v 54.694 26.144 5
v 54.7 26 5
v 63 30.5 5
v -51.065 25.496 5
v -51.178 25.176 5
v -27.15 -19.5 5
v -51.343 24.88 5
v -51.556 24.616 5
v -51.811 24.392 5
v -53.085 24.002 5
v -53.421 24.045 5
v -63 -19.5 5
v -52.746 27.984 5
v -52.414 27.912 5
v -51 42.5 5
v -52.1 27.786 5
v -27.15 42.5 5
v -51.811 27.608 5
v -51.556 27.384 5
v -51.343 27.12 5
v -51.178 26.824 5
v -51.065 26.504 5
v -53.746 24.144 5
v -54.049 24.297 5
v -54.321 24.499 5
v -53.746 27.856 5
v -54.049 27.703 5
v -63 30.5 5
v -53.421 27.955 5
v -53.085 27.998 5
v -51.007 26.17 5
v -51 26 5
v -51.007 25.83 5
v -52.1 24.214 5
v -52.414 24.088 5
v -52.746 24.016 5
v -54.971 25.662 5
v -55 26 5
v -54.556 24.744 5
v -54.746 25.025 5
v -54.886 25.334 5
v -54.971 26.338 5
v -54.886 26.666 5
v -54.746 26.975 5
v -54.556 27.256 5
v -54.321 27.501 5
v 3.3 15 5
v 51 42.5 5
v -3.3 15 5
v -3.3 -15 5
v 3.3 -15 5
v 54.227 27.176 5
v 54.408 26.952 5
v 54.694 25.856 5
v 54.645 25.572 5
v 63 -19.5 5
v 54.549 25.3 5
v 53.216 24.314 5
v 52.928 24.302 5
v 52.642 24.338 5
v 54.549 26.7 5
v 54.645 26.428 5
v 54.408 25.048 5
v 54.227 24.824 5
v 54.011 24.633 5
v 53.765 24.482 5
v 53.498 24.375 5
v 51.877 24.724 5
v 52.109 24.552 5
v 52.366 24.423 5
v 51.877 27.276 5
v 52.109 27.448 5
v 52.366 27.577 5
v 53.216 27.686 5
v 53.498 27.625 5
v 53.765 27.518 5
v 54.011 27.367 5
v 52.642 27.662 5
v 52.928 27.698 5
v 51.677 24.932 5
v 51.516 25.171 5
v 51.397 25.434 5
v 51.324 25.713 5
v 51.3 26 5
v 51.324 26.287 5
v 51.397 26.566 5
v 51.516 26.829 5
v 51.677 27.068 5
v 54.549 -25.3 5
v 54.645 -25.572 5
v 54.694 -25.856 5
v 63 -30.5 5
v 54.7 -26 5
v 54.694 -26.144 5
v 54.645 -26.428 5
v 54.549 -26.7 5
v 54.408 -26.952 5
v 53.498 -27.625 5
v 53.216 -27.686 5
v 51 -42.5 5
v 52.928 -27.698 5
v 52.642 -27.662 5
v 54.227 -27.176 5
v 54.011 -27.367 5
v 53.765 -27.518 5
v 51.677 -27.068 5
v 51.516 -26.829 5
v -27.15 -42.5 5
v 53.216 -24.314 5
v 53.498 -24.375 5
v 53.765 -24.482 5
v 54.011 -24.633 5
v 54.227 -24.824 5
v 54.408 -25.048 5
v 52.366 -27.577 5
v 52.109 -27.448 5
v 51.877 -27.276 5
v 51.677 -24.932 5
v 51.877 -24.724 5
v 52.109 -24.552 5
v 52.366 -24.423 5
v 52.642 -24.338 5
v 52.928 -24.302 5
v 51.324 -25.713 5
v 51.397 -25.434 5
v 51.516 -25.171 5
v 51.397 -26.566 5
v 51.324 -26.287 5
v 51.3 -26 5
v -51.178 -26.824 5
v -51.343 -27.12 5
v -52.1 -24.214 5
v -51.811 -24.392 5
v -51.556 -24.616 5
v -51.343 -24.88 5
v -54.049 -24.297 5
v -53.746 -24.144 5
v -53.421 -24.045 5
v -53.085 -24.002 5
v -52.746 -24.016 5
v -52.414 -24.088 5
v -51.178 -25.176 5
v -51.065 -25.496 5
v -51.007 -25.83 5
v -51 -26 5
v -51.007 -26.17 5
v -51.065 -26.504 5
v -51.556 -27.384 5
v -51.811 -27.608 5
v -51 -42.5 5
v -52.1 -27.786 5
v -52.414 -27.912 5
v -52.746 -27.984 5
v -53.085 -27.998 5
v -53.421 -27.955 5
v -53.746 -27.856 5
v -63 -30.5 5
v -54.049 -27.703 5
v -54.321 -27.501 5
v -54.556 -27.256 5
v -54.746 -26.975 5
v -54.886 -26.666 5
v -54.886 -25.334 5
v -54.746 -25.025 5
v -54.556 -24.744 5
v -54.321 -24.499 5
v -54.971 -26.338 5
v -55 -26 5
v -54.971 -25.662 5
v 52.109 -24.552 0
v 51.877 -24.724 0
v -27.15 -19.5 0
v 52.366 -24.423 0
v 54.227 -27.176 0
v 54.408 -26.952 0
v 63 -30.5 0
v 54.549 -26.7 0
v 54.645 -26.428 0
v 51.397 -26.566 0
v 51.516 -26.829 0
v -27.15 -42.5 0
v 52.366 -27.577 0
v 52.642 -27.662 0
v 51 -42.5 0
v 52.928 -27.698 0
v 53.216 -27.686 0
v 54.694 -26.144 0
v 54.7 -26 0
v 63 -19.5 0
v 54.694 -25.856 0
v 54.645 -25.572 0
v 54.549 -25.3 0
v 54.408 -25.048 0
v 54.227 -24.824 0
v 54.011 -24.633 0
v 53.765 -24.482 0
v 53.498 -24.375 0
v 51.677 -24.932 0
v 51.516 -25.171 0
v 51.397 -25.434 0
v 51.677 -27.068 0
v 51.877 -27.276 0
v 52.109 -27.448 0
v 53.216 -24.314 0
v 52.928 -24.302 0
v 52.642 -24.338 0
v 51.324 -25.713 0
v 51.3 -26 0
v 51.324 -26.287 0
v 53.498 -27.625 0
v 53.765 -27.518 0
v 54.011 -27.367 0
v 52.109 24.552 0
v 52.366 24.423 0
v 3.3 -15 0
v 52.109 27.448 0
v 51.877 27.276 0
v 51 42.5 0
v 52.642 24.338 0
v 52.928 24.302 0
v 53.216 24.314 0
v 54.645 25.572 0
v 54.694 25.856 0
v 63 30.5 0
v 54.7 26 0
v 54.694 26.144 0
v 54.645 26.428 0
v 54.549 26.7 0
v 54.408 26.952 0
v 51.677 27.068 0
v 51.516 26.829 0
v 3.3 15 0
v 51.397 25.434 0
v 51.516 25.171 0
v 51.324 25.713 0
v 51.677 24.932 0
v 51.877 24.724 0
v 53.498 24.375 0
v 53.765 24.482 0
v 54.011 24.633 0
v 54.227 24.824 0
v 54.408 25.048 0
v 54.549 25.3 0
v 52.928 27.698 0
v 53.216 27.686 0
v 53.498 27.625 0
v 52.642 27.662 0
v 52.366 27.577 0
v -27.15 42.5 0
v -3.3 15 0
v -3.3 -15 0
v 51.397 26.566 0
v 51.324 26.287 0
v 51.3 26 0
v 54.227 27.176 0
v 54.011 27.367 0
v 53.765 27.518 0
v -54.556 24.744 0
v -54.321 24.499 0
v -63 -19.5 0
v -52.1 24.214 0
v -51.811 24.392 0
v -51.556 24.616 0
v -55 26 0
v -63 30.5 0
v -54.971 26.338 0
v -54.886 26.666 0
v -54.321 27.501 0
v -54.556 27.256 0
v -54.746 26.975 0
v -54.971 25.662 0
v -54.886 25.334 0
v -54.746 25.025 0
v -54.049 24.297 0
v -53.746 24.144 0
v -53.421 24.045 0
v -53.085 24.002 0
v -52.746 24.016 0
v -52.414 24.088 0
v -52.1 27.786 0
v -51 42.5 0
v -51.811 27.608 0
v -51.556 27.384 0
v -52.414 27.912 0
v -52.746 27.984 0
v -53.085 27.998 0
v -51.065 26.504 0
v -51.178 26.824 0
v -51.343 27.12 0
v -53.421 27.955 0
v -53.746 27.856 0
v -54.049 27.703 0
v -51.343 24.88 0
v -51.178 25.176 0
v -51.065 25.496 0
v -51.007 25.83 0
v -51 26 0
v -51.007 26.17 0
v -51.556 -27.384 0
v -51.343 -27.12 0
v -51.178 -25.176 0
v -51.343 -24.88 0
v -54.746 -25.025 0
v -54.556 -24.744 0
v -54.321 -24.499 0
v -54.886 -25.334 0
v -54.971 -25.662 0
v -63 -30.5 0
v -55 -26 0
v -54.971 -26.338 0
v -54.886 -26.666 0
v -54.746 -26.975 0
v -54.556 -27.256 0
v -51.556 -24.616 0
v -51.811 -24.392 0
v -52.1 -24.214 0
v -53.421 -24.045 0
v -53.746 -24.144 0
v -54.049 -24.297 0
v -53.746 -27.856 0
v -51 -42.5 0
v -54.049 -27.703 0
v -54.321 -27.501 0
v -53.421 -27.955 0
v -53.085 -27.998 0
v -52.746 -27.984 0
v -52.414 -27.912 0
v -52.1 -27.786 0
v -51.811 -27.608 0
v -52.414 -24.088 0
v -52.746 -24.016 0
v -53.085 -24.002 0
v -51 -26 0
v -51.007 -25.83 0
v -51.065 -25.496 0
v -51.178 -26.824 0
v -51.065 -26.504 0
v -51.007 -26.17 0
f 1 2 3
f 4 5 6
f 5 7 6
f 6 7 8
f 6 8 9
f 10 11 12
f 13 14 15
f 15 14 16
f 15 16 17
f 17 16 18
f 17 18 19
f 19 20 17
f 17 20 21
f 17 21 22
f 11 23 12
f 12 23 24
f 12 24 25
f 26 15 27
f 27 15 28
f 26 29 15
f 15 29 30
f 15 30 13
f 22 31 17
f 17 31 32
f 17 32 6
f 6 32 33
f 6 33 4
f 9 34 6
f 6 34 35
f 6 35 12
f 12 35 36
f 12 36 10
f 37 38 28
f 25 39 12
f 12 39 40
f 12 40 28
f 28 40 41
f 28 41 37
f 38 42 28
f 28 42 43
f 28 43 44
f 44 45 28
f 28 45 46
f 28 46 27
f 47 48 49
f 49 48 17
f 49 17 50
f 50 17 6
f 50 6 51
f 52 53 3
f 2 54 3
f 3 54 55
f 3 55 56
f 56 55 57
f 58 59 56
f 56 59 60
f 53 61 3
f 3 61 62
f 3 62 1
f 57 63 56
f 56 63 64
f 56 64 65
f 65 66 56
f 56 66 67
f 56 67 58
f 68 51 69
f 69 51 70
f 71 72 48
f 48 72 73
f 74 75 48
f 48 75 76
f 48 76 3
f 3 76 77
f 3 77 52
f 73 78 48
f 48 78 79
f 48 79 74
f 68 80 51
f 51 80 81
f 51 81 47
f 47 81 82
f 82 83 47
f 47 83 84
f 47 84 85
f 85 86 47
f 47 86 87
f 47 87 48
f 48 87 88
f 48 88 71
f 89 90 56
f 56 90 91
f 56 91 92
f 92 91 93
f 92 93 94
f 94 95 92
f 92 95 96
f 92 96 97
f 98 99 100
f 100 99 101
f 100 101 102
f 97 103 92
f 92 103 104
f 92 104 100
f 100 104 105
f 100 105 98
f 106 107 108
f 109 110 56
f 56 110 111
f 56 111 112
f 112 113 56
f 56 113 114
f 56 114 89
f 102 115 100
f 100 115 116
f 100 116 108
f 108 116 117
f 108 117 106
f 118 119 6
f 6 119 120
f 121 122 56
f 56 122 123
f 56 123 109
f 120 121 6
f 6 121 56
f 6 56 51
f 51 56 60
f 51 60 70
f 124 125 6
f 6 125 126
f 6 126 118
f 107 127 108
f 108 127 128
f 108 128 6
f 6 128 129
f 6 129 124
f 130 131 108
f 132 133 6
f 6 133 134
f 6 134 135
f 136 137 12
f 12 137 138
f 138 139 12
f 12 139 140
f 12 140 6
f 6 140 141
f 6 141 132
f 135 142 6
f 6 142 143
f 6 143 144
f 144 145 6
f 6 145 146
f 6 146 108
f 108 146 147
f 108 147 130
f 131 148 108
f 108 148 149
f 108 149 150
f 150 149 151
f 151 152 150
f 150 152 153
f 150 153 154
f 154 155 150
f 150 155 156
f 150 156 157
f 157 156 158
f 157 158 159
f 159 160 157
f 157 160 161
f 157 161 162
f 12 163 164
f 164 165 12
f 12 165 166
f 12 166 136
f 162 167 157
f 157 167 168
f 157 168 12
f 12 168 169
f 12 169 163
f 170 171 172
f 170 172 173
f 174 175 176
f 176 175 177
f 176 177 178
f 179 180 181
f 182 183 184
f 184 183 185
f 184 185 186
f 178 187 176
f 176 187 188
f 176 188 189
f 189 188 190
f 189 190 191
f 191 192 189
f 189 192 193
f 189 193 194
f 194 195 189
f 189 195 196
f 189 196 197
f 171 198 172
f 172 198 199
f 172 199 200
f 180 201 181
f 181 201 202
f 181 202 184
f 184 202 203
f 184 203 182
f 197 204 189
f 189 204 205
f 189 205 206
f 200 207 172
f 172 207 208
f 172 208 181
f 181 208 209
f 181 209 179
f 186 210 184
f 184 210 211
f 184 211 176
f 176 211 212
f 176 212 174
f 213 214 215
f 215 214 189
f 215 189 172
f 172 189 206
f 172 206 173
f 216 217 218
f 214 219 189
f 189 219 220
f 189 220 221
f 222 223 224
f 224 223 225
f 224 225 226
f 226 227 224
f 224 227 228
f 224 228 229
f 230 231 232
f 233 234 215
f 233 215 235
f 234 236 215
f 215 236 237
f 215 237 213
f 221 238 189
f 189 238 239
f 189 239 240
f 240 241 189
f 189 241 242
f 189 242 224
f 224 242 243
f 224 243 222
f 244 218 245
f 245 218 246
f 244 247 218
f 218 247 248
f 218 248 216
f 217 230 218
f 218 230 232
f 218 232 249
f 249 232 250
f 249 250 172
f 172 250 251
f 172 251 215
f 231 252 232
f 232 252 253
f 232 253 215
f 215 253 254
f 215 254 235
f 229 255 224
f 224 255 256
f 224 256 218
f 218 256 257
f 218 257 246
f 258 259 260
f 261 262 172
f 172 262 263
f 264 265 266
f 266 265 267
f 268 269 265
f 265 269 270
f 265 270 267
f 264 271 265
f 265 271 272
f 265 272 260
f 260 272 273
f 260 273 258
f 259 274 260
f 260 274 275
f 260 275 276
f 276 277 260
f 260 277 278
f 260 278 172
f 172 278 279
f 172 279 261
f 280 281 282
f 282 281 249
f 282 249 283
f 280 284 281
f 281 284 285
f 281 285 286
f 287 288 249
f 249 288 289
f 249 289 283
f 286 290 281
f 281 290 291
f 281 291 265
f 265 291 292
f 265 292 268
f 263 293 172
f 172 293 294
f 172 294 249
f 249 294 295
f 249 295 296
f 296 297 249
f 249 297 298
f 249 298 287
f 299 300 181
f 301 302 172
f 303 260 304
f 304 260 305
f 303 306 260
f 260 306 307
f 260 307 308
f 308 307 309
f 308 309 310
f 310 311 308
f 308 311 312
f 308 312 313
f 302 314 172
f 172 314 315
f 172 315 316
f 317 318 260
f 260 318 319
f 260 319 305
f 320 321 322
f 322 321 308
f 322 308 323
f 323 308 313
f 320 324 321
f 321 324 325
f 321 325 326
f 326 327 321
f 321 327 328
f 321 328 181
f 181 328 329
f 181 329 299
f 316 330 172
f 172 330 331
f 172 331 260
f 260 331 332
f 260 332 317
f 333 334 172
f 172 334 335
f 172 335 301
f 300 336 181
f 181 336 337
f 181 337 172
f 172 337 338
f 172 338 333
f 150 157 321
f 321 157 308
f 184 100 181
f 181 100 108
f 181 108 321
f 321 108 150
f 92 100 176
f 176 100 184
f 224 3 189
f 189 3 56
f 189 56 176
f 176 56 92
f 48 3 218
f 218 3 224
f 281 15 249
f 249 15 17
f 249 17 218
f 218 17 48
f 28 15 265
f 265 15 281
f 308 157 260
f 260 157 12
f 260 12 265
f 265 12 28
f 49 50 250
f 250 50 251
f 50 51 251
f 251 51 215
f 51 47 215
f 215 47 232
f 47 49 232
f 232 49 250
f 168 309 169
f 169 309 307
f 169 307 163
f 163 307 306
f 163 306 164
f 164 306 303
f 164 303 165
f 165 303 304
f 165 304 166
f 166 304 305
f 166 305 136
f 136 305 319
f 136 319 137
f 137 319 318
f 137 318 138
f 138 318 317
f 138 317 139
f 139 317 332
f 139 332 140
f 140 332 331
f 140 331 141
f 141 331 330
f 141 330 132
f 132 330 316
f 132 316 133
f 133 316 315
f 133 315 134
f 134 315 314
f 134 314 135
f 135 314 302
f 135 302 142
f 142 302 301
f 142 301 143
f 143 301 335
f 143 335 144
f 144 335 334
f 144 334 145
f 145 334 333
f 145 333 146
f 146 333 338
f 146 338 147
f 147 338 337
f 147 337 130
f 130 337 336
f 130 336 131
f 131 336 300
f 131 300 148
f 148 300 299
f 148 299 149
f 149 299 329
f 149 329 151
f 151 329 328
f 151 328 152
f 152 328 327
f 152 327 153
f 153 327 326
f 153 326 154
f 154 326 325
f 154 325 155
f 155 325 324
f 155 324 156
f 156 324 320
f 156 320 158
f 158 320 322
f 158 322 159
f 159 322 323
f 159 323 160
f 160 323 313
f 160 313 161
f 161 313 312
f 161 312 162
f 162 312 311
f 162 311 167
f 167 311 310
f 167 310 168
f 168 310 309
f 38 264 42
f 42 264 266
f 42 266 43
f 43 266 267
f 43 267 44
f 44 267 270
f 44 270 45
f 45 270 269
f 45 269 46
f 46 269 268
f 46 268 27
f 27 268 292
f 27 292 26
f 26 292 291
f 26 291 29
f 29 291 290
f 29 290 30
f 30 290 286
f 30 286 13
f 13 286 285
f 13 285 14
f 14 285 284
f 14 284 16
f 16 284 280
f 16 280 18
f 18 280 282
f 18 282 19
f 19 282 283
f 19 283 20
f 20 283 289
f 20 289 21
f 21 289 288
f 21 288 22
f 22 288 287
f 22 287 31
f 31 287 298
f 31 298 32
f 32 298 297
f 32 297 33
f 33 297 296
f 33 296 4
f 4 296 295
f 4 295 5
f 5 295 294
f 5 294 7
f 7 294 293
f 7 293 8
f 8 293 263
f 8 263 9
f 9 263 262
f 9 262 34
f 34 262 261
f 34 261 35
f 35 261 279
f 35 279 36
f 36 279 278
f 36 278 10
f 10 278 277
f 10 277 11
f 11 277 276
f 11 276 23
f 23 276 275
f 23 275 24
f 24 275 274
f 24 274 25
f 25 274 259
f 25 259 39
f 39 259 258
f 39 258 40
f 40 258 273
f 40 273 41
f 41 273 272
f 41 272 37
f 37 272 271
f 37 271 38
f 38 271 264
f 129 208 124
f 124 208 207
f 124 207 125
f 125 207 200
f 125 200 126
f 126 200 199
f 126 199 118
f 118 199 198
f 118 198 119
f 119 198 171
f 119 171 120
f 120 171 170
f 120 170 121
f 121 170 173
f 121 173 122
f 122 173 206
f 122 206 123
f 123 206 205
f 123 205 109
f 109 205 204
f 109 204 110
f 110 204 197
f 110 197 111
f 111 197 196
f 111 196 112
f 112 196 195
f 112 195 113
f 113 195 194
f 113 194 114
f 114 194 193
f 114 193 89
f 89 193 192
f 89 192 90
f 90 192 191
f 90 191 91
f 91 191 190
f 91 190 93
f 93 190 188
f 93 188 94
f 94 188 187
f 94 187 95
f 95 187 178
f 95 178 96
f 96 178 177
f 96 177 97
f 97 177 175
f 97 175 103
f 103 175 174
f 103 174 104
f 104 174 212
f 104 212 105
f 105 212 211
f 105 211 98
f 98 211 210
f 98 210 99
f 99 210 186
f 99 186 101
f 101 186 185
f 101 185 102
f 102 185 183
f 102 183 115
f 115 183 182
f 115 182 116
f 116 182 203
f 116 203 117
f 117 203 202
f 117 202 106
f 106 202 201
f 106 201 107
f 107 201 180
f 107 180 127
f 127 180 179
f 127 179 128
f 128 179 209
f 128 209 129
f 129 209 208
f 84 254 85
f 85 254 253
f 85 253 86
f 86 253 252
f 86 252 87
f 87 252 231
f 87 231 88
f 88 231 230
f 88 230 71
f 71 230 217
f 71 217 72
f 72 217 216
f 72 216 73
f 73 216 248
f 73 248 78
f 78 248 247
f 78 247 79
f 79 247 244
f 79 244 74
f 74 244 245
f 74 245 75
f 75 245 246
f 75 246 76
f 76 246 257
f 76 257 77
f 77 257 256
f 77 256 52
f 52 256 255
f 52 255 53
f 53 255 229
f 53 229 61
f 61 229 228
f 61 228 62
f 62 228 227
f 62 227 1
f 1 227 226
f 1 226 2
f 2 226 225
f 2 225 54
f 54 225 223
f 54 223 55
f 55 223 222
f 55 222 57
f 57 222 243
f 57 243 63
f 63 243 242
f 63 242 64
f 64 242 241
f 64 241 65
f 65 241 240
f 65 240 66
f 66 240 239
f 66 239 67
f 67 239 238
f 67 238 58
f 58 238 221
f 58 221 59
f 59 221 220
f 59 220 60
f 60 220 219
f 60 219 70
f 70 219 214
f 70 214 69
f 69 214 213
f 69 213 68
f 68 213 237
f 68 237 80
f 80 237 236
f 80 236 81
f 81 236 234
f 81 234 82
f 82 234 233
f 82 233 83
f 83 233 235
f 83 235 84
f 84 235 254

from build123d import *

# Parameters (mm, degrees)
SKETCH_1_R                  = 2
SKETCH_1_R_2                = 1.7
SKETCH_1_W                  = 6.6
SKETCH_1_H                  = 30
F_09_C920_TRIPOD_TRAY_DEPTH = 5


with BuildPart() as part:
    # Эскиз1 → 09_C920_tripod_tray (new body)
    with BuildSketch(Plane.XY):
        Polygon((-51, -42.5), (51, -42.5), (63, -30.5), (63, 30.5), (51, 42.5), (-51, 42.5), (-63, 30.5), (-63, -30.5), align=None)
        with Locations((-53, -26)):
            Circle(SKETCH_1_R, mode=Mode.SUBTRACT)
        with Locations((-53, 26)):
            Circle(SKETCH_1_R, mode=Mode.SUBTRACT)
        with Locations((53, -26)):
            Circle(SKETCH_1_R_2, mode=Mode.SUBTRACT)
        with Locations((53, 26)):
            Circle(SKETCH_1_R_2, mode=Mode.SUBTRACT)
        Rectangle(SKETCH_1_W, SKETCH_1_H, mode=Mode.SUBTRACT)
    extrude(amount=F_09_C920_TRIPOD_TRAY_DEPTH)


solid = part.part
